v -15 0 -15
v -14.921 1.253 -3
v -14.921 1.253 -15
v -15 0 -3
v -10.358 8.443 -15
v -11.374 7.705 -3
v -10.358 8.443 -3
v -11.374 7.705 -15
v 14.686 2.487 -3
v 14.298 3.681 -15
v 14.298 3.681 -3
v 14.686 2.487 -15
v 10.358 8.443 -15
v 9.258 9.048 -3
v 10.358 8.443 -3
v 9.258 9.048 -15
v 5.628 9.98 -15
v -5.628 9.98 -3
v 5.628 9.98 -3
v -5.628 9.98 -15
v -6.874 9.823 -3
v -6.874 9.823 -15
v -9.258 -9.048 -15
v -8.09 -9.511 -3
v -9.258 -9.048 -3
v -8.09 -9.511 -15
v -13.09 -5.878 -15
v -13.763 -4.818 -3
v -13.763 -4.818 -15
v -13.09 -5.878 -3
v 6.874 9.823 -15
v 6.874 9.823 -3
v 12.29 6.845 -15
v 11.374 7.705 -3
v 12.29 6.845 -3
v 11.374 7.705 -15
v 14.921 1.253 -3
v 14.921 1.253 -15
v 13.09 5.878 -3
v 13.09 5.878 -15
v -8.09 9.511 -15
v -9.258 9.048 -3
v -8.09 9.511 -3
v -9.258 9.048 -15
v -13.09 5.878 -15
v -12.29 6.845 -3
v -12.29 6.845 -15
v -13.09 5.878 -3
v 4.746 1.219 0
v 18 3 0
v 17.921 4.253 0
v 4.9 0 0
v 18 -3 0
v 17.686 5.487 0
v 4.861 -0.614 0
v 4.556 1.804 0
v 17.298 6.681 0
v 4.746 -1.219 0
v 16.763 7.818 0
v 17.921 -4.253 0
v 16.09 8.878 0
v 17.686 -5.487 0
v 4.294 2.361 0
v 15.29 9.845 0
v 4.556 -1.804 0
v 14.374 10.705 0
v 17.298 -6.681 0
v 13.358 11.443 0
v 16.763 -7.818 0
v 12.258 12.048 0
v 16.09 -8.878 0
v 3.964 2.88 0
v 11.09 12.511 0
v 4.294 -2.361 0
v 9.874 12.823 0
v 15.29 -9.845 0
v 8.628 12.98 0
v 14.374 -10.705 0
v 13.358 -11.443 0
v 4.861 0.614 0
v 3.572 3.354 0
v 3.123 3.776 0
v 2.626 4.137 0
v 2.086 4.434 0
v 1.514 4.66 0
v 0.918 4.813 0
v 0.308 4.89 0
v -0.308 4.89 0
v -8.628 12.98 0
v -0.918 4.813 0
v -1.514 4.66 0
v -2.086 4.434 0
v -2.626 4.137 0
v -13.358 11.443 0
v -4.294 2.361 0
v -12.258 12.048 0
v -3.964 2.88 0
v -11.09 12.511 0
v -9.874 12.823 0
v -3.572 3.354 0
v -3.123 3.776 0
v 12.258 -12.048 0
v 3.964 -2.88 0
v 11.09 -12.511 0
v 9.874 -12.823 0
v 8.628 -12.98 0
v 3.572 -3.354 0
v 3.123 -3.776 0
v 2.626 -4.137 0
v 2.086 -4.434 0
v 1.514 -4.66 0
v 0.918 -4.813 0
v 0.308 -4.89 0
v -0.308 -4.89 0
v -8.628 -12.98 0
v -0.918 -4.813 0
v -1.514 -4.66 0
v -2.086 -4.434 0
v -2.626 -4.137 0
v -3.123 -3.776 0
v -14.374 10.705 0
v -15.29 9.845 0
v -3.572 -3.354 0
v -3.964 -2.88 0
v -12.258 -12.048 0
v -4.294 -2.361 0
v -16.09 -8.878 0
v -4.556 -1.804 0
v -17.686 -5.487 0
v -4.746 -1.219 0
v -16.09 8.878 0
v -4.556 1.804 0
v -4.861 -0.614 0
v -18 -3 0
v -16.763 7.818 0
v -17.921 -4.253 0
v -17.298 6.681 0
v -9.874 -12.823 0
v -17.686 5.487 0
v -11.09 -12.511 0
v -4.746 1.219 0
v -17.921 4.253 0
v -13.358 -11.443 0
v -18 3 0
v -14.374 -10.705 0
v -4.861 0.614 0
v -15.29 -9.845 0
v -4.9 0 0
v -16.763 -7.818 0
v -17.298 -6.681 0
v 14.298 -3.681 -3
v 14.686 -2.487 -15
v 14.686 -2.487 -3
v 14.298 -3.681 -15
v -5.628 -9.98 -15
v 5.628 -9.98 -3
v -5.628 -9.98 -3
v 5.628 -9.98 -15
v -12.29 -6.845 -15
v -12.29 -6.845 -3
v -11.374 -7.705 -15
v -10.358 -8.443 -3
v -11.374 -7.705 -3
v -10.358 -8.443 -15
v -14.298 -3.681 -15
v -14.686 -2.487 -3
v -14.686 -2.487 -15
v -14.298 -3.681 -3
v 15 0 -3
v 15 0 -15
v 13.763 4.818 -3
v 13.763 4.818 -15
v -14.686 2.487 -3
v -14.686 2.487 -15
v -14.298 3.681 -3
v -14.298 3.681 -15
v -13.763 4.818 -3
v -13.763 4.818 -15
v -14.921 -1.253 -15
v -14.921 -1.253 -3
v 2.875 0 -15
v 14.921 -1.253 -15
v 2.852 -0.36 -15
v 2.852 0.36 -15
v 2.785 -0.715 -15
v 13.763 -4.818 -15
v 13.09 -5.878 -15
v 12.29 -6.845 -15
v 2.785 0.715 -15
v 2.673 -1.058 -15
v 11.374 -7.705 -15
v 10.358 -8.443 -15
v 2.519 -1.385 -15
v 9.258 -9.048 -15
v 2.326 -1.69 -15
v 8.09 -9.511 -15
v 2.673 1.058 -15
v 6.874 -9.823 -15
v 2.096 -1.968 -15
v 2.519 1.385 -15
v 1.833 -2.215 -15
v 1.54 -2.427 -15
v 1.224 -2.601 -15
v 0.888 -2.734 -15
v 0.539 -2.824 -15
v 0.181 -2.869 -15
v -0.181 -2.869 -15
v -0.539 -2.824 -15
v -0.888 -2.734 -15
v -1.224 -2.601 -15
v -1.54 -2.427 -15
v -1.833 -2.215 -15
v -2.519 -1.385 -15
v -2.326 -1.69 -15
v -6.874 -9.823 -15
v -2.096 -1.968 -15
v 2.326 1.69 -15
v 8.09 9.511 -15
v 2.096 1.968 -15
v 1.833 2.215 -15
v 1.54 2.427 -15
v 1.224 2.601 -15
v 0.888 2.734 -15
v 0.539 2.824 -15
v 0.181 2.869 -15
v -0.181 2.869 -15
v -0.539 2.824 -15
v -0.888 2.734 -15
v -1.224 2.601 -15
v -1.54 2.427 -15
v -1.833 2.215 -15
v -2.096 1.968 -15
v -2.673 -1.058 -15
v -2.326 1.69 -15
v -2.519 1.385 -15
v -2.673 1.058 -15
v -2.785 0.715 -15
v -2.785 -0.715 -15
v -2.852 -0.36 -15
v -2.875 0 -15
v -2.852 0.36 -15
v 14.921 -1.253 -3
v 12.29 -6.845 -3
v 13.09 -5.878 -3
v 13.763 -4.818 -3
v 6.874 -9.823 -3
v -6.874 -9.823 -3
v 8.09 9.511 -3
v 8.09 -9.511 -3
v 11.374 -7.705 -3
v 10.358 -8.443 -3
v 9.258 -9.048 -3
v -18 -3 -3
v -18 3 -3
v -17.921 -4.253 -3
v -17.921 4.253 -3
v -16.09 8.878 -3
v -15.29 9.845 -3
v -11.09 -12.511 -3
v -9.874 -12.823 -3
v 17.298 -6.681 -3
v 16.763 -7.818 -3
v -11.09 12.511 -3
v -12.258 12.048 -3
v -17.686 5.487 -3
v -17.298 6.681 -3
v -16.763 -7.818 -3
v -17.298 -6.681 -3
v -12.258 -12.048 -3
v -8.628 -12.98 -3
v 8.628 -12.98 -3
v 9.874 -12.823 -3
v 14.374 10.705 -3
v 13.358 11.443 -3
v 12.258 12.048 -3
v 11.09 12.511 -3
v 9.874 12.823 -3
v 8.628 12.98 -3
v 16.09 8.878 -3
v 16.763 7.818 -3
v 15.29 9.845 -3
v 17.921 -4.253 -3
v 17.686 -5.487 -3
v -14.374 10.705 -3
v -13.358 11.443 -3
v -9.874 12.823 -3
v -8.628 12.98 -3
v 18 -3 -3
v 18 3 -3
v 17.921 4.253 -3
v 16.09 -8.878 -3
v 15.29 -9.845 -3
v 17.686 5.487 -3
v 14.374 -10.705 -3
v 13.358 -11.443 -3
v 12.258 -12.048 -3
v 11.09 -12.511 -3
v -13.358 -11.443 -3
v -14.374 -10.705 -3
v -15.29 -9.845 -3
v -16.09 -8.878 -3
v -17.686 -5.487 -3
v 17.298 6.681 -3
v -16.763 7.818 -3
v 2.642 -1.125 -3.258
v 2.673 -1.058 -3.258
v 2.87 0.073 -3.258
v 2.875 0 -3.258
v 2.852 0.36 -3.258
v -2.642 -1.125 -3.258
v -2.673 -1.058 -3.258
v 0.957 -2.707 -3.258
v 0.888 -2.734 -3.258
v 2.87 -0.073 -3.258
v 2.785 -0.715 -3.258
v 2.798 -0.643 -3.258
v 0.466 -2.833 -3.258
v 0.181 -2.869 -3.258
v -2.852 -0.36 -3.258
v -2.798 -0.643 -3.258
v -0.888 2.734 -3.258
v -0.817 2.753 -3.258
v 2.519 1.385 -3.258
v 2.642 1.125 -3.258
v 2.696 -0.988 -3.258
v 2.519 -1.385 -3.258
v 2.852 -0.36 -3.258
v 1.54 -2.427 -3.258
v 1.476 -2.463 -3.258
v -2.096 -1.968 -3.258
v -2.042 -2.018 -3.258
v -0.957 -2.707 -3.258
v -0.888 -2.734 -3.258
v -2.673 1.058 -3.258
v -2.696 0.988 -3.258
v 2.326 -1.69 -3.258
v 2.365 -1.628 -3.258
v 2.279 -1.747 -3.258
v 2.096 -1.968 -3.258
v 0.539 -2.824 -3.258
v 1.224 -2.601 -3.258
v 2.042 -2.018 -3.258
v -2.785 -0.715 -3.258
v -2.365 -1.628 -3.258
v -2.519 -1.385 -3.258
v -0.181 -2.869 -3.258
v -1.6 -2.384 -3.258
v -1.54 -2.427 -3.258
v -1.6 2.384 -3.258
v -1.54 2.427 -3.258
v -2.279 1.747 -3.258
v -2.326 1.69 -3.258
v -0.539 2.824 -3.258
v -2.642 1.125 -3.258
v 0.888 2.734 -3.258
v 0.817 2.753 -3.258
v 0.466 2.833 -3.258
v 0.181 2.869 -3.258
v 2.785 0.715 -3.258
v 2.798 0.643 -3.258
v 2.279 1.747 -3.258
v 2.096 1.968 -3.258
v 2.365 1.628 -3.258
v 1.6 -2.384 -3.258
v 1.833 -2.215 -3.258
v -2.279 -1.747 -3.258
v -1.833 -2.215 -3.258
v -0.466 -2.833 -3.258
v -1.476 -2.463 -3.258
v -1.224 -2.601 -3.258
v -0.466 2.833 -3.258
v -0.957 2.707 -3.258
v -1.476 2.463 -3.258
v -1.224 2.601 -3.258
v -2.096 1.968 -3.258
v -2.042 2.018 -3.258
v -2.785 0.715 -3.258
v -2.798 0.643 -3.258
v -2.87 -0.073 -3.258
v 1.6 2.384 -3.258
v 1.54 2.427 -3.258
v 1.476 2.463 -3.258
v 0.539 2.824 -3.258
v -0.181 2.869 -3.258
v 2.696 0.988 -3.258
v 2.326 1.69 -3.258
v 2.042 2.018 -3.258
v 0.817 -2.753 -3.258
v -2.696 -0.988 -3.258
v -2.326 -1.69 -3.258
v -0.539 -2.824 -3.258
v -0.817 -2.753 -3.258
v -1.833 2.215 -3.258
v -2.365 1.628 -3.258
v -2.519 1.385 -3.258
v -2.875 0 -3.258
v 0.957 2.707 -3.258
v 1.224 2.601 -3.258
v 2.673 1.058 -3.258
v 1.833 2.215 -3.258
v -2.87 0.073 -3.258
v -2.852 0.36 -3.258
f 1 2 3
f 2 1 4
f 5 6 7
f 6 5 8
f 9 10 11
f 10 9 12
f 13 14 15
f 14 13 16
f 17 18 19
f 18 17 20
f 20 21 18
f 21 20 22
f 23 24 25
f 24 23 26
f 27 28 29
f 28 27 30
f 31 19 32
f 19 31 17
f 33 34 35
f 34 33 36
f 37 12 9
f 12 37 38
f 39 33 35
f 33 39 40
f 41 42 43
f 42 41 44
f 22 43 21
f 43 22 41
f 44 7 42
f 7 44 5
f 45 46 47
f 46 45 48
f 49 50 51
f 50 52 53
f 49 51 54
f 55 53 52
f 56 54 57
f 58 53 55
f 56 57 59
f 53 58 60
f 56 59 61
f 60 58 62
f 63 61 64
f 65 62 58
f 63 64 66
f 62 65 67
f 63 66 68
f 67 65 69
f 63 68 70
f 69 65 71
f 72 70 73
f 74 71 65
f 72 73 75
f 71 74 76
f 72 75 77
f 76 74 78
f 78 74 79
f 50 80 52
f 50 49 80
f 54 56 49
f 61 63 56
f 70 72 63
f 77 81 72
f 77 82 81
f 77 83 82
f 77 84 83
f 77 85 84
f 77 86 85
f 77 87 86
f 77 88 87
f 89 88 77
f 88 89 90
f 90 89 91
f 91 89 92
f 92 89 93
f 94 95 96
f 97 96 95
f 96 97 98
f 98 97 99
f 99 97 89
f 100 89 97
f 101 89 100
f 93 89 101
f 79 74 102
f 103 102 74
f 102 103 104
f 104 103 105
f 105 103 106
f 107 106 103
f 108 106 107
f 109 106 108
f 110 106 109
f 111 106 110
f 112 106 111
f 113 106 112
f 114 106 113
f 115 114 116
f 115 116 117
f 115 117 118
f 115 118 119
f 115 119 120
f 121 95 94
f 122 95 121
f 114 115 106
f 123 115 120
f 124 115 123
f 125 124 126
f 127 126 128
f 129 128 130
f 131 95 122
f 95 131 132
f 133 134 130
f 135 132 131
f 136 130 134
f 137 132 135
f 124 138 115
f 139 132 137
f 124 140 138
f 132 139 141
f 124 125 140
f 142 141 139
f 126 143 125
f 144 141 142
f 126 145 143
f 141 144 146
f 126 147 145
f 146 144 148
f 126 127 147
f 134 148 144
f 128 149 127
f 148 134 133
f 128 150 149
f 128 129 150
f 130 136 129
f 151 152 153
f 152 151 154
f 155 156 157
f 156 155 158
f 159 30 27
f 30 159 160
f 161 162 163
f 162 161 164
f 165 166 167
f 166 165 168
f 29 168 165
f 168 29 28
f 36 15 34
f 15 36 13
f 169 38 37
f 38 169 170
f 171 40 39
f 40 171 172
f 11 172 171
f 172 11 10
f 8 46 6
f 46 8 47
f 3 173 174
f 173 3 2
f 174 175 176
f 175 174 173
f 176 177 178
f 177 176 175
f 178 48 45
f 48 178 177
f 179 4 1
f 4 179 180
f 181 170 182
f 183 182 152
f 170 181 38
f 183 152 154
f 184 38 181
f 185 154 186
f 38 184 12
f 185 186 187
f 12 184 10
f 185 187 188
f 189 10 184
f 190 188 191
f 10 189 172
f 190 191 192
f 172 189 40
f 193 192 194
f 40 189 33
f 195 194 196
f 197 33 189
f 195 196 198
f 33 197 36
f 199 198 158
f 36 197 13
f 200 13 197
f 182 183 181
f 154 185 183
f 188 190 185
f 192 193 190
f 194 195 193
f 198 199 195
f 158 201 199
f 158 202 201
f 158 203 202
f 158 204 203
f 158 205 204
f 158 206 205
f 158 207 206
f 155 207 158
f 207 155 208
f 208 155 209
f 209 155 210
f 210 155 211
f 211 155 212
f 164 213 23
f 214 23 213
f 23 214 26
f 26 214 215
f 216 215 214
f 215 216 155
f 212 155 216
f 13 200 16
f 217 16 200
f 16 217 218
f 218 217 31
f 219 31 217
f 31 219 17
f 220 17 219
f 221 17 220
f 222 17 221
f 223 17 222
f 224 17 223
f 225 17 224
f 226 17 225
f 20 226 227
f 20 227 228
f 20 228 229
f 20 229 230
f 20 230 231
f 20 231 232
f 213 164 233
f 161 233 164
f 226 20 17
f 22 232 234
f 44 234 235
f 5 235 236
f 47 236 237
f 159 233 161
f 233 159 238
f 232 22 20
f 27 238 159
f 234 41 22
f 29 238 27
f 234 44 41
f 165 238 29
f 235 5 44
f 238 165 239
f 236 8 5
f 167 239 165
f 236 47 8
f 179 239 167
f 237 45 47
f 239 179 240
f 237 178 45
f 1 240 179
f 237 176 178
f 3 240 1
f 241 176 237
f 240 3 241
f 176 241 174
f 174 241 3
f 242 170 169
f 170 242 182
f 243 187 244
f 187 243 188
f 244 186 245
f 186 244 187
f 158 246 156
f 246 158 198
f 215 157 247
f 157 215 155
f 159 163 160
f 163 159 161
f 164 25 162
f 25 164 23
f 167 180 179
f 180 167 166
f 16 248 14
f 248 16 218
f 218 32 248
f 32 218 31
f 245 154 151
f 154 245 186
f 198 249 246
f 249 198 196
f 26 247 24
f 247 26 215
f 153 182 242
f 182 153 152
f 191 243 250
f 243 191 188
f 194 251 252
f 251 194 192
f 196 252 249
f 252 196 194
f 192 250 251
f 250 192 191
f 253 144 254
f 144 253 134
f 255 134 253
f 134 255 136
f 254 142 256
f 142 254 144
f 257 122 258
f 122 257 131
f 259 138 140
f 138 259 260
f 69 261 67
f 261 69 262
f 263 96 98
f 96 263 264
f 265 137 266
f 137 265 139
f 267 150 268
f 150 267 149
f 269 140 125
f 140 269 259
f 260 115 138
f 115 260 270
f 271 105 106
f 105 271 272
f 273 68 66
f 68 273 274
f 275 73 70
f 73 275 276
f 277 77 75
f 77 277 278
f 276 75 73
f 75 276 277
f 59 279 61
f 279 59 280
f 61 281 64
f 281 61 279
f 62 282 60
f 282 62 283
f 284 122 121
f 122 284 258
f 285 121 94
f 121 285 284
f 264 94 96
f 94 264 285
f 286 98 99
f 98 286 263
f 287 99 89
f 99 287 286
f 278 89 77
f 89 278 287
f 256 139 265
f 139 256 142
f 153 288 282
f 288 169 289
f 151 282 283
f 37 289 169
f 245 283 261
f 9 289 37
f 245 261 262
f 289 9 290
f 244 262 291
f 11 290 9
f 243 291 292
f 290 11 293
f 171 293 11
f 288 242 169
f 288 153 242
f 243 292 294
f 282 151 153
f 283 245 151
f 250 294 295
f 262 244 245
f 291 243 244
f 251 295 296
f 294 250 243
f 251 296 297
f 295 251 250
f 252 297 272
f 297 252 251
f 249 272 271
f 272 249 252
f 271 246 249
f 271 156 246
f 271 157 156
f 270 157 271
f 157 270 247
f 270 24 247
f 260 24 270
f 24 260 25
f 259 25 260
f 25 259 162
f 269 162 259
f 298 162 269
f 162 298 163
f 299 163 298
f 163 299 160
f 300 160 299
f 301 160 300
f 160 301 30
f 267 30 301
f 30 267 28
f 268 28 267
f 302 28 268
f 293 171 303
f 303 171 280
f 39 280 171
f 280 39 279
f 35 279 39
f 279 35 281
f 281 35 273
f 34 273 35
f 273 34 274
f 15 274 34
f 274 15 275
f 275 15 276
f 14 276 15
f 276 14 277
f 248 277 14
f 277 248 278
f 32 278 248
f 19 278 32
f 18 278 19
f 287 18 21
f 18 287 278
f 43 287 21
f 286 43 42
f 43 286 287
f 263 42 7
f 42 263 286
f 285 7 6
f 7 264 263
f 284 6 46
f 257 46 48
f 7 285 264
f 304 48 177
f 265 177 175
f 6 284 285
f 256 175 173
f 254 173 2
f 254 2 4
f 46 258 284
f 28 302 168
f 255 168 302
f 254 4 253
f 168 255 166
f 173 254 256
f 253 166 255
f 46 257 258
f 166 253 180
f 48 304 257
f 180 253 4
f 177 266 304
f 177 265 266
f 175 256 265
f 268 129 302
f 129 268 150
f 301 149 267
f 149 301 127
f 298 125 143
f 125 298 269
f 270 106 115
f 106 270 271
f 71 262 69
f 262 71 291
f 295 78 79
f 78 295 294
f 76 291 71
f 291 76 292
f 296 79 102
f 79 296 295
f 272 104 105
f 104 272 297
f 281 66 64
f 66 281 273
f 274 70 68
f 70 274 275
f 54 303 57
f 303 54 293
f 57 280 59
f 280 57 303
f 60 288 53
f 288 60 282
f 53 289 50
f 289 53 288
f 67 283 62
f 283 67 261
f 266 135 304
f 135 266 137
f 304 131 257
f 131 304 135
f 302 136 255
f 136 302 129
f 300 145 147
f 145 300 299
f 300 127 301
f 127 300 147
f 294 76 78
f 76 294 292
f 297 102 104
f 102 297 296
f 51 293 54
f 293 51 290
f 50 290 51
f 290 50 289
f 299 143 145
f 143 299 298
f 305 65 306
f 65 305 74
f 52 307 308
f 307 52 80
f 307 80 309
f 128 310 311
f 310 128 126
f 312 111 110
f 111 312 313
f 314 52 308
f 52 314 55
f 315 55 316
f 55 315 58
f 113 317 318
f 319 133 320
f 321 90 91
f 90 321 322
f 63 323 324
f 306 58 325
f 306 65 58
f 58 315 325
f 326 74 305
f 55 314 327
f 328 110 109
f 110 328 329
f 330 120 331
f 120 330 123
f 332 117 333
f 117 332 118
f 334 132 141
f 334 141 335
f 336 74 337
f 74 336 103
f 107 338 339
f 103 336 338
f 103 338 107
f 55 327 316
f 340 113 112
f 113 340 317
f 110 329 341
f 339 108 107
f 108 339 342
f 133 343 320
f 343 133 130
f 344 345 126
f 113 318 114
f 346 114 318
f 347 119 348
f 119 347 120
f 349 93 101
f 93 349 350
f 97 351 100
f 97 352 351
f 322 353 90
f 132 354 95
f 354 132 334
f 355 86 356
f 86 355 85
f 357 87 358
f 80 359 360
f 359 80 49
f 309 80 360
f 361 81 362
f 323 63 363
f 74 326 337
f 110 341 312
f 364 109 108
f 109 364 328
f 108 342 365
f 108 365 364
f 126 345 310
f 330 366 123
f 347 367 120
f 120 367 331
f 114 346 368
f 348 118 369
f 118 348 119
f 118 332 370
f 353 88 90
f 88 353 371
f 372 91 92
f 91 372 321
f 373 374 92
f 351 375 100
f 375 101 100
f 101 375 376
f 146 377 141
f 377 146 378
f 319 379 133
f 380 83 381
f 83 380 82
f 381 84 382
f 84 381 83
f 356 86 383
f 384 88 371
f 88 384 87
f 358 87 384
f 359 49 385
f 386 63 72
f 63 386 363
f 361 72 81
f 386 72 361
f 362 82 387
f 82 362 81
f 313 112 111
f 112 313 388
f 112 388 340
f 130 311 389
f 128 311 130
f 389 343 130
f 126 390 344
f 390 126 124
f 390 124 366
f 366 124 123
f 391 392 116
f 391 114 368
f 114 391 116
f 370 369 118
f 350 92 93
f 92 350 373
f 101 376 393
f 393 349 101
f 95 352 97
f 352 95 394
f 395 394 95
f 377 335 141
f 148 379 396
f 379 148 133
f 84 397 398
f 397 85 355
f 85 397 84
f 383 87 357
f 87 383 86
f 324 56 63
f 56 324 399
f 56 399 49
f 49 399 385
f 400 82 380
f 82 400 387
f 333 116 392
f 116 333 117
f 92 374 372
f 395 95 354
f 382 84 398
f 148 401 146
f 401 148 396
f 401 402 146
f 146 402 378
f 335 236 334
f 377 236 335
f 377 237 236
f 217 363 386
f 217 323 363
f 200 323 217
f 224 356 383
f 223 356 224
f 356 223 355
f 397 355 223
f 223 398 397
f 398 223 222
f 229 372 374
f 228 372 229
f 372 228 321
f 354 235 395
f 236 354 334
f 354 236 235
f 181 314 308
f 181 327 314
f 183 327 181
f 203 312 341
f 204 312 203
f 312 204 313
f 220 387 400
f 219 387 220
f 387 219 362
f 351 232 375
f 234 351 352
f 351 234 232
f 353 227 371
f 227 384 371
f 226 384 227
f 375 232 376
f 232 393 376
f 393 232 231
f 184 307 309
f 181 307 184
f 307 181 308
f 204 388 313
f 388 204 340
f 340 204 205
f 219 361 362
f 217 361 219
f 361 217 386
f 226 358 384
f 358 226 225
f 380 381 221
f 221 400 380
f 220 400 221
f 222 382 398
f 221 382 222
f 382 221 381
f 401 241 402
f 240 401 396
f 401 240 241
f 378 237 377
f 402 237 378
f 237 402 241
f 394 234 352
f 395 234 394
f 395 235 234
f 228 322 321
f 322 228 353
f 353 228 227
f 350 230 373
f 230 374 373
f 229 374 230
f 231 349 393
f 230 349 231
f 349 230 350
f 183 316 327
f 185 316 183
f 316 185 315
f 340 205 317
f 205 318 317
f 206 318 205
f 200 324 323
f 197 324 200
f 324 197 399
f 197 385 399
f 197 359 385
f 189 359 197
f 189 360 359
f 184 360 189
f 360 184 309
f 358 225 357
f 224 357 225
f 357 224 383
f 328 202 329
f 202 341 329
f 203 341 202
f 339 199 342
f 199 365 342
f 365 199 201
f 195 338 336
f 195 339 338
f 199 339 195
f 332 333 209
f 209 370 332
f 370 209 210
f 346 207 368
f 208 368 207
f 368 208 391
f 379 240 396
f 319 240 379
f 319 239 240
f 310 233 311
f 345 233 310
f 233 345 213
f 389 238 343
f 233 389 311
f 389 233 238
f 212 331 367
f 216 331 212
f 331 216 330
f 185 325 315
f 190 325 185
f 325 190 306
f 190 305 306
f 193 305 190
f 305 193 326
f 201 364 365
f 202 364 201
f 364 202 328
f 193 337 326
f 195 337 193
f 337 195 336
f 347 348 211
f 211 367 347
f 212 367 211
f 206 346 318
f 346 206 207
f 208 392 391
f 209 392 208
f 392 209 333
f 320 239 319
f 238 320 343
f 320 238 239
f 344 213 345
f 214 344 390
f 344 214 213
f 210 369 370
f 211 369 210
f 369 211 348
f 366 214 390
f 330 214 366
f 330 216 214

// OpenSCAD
$fn = 50;


difference() {
	union() {
		translate(v = [0, 0, -15]) {
			hull() {
				translate(v = [-5.0000000000, 0.0000000000, 0]) {
					cylinder(h = 15, r = 10.0000000000);
				}
				translate(v = [5.0000000000, 0.0000000000, 0]) {
					cylinder(h = 15, r = 10.0000000000);
				}
				translate(v = [-5.0000000000, -0.0000000000, 0]) {
					cylinder(h = 15, r = 10.0000000000);
				}
				translate(v = [5.0000000000, -0.0000000000, 0]) {
					cylinder(h = 15, r = 10.0000000000);
				}
			}
		}
		translate(v = [0, 0, -3]) {
			hull() {
				translate(v = [-8.0000000000, 3.0000000000, 0]) {
					cylinder(h = 3, r = 10.0000000000);
				}
				translate(v = [8.0000000000, 3.0000000000, 0]) {
					cylinder(h = 3, r = 10.0000000000);
				}
				translate(v = [-8.0000000000, -3.0000000000, 0]) {
					cylinder(h = 3, r = 10.0000000000);
				}
				translate(v = [8.0000000000, -3.0000000000, 0]) {
					cylinder(h = 3, r = 10.0000000000);
				}
			}
		}
	}
	union() {
		translate(v = [0, 0, 0]) {
			rotate(a = [0, 0, 0]) {
				difference() {
					union() {
						#translate(v = [0, 0, -3.7000000000]) {
							cylinder(h = 3.7000000000, r = 10.0000000000, r1 = 2.6000000000, r2 = 4.9000000000);
						}
						#translate(v = [0, 0, -15.0000000000]) {
							cylinder(h = 15, r = 2.6000000000);
						}
						#translate(v = [0, 0, -15.0000000000]) {
							cylinder(h = 15, r = 2.8750000000);
						}
						#translate(v = [0, 0, -15.0000000000]) {
							cylinder(h = 15, r = 2.6000000000);
						}
					}
					union();
				}
			}
		}
	}
}
